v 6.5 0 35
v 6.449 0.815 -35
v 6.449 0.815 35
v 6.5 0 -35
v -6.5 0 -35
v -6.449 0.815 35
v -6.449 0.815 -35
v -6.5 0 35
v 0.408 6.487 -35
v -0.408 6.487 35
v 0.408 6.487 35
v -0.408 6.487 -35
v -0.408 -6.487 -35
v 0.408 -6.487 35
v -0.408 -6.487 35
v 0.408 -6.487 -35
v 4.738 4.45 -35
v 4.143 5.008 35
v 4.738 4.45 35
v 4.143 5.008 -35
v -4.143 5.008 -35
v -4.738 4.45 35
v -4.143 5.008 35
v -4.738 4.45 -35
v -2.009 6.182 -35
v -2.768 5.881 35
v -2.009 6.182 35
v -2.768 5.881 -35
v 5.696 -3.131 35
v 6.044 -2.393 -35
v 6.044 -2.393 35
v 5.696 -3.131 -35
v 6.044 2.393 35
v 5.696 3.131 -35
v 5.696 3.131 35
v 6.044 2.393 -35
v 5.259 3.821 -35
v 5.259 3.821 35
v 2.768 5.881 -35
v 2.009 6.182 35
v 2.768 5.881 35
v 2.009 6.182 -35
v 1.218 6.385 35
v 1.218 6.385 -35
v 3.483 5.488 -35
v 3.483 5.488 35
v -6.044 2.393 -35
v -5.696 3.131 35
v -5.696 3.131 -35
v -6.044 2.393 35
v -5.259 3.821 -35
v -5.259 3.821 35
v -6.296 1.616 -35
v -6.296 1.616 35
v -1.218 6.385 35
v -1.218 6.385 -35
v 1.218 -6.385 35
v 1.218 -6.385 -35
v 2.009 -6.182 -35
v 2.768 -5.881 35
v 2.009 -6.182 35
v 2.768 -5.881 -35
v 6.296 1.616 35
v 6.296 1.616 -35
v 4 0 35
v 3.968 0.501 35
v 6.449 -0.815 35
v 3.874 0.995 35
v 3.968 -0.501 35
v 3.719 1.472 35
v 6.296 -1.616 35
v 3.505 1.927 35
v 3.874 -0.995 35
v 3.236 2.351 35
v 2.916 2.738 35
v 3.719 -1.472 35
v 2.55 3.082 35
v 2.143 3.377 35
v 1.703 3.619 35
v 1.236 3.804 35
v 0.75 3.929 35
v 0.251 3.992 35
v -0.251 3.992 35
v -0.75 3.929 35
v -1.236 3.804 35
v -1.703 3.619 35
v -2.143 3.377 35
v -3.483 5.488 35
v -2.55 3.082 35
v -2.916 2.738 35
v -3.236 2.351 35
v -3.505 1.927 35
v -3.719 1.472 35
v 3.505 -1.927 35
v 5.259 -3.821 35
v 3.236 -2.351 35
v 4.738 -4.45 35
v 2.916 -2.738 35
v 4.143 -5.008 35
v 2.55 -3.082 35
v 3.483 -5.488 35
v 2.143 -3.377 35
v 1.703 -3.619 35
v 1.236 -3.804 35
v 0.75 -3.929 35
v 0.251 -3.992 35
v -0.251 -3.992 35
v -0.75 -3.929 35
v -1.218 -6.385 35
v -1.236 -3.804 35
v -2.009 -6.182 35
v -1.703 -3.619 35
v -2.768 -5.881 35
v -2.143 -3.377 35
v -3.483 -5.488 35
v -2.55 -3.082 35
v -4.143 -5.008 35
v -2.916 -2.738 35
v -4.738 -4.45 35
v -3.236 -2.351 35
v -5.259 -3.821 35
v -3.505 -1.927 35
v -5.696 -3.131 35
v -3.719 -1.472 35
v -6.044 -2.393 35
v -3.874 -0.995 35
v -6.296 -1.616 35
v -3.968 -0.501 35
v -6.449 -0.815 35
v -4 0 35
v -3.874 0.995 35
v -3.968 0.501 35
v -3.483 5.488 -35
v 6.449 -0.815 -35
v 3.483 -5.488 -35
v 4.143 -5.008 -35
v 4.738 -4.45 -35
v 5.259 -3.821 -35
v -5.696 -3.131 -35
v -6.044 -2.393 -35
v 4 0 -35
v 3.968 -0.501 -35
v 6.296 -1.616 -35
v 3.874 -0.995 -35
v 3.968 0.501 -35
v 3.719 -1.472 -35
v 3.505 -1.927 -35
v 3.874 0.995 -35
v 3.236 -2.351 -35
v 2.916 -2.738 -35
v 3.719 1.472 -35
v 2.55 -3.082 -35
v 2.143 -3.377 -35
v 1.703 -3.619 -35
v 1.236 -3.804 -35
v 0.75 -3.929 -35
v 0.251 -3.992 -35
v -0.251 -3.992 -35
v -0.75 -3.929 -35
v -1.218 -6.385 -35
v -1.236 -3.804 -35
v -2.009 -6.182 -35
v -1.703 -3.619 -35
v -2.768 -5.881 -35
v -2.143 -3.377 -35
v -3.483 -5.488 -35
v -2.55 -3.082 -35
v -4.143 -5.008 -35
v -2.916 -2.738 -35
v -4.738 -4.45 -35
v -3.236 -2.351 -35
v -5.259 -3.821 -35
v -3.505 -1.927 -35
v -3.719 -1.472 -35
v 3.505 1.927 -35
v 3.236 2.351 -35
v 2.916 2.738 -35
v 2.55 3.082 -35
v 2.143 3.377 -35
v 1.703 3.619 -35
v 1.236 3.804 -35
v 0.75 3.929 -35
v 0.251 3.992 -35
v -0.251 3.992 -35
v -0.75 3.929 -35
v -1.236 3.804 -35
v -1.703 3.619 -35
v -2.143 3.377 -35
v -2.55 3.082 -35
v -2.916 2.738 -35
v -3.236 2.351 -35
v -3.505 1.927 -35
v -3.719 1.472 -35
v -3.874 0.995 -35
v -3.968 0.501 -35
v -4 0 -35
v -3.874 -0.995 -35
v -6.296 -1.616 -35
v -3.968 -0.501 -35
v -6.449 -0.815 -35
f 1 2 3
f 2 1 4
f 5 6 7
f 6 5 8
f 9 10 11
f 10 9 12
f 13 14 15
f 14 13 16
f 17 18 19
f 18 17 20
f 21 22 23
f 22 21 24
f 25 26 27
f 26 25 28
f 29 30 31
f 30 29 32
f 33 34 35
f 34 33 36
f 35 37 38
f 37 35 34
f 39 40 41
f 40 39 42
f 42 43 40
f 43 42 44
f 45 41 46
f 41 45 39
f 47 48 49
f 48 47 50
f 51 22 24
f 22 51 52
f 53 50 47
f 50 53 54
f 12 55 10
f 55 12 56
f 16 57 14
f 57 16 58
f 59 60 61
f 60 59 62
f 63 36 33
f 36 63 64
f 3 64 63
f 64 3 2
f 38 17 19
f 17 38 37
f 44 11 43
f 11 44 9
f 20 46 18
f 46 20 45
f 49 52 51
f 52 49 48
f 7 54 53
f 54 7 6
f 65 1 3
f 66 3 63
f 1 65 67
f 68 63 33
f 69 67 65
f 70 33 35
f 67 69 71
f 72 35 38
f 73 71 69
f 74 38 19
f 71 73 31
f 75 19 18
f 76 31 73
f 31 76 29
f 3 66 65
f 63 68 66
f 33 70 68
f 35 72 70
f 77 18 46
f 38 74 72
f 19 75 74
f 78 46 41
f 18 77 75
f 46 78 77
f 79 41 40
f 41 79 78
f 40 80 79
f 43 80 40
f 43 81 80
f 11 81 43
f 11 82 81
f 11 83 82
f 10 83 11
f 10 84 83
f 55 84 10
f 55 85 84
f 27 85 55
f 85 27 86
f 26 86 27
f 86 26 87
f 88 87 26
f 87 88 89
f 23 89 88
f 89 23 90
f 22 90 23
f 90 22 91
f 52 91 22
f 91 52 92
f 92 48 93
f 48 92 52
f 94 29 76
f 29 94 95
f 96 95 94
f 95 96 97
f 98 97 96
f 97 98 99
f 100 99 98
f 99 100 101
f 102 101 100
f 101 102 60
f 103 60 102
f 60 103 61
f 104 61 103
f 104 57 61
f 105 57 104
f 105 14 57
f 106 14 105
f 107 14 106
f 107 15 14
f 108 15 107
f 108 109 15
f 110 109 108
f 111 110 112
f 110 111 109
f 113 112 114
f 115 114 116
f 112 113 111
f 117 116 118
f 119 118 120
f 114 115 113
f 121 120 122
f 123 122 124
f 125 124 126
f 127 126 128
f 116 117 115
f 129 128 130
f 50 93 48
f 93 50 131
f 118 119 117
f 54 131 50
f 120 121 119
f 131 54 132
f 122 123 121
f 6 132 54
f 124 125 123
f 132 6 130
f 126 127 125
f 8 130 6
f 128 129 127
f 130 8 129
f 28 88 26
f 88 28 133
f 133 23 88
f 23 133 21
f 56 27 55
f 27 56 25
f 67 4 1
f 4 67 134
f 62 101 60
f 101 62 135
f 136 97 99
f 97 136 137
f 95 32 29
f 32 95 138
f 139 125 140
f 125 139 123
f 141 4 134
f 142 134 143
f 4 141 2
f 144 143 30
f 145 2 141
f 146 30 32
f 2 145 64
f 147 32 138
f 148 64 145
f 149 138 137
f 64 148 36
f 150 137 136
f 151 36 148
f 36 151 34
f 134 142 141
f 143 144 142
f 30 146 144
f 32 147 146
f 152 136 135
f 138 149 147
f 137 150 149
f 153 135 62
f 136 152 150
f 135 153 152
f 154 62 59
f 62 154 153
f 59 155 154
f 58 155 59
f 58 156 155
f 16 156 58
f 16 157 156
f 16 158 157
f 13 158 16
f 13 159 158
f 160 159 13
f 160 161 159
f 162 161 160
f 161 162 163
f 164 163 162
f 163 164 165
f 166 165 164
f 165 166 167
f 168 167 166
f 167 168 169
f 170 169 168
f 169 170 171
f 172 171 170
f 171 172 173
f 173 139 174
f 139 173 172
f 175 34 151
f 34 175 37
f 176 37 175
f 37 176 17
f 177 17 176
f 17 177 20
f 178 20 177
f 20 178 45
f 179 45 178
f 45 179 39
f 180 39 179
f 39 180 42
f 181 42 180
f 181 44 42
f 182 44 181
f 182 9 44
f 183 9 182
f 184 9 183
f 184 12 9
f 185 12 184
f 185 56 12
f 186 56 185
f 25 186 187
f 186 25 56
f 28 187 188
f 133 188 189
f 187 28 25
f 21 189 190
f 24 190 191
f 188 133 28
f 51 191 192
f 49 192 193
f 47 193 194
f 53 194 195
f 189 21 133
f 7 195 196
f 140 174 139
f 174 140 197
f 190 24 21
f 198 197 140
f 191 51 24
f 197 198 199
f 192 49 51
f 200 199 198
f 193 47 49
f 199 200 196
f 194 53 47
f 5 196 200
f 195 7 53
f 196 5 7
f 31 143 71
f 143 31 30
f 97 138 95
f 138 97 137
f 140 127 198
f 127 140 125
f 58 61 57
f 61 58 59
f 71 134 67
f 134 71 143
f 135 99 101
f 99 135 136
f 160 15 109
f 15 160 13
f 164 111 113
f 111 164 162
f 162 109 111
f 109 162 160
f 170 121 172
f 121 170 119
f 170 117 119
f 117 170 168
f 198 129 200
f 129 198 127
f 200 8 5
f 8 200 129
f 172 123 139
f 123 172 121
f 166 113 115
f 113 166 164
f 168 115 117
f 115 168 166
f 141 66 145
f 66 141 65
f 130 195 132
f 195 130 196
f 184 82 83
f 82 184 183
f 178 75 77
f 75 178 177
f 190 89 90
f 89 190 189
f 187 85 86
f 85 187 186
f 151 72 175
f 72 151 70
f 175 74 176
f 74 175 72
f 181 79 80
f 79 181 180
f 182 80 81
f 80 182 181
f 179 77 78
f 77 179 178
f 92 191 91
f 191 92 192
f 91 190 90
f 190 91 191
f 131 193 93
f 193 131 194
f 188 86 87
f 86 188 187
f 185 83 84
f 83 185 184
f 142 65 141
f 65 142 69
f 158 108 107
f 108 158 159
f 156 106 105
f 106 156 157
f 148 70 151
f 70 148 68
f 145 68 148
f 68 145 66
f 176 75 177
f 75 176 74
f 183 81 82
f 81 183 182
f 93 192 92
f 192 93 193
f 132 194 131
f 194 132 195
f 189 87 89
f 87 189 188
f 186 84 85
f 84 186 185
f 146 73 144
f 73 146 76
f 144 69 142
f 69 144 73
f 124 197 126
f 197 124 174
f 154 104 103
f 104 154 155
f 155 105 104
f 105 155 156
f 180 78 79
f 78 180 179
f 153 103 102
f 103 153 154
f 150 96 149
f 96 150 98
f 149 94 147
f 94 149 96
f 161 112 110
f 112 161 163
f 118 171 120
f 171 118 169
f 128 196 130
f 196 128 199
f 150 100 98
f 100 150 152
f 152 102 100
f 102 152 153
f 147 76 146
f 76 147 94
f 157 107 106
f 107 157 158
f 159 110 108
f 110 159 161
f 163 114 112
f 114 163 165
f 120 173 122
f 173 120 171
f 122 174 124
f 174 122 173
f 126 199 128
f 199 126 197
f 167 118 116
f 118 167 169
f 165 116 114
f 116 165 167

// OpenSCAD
$fn = 50;


difference() {
	union() {
		translate(v = [0, 0, -35.0000000000]) {
			cylinder(h = 70, r = 6.5000000000);
		}
	}
	union() {
		translate(v = [0, 0, -100.0000000000]) {
			cylinder(h = 200, r = 4);
		}
	}
}
